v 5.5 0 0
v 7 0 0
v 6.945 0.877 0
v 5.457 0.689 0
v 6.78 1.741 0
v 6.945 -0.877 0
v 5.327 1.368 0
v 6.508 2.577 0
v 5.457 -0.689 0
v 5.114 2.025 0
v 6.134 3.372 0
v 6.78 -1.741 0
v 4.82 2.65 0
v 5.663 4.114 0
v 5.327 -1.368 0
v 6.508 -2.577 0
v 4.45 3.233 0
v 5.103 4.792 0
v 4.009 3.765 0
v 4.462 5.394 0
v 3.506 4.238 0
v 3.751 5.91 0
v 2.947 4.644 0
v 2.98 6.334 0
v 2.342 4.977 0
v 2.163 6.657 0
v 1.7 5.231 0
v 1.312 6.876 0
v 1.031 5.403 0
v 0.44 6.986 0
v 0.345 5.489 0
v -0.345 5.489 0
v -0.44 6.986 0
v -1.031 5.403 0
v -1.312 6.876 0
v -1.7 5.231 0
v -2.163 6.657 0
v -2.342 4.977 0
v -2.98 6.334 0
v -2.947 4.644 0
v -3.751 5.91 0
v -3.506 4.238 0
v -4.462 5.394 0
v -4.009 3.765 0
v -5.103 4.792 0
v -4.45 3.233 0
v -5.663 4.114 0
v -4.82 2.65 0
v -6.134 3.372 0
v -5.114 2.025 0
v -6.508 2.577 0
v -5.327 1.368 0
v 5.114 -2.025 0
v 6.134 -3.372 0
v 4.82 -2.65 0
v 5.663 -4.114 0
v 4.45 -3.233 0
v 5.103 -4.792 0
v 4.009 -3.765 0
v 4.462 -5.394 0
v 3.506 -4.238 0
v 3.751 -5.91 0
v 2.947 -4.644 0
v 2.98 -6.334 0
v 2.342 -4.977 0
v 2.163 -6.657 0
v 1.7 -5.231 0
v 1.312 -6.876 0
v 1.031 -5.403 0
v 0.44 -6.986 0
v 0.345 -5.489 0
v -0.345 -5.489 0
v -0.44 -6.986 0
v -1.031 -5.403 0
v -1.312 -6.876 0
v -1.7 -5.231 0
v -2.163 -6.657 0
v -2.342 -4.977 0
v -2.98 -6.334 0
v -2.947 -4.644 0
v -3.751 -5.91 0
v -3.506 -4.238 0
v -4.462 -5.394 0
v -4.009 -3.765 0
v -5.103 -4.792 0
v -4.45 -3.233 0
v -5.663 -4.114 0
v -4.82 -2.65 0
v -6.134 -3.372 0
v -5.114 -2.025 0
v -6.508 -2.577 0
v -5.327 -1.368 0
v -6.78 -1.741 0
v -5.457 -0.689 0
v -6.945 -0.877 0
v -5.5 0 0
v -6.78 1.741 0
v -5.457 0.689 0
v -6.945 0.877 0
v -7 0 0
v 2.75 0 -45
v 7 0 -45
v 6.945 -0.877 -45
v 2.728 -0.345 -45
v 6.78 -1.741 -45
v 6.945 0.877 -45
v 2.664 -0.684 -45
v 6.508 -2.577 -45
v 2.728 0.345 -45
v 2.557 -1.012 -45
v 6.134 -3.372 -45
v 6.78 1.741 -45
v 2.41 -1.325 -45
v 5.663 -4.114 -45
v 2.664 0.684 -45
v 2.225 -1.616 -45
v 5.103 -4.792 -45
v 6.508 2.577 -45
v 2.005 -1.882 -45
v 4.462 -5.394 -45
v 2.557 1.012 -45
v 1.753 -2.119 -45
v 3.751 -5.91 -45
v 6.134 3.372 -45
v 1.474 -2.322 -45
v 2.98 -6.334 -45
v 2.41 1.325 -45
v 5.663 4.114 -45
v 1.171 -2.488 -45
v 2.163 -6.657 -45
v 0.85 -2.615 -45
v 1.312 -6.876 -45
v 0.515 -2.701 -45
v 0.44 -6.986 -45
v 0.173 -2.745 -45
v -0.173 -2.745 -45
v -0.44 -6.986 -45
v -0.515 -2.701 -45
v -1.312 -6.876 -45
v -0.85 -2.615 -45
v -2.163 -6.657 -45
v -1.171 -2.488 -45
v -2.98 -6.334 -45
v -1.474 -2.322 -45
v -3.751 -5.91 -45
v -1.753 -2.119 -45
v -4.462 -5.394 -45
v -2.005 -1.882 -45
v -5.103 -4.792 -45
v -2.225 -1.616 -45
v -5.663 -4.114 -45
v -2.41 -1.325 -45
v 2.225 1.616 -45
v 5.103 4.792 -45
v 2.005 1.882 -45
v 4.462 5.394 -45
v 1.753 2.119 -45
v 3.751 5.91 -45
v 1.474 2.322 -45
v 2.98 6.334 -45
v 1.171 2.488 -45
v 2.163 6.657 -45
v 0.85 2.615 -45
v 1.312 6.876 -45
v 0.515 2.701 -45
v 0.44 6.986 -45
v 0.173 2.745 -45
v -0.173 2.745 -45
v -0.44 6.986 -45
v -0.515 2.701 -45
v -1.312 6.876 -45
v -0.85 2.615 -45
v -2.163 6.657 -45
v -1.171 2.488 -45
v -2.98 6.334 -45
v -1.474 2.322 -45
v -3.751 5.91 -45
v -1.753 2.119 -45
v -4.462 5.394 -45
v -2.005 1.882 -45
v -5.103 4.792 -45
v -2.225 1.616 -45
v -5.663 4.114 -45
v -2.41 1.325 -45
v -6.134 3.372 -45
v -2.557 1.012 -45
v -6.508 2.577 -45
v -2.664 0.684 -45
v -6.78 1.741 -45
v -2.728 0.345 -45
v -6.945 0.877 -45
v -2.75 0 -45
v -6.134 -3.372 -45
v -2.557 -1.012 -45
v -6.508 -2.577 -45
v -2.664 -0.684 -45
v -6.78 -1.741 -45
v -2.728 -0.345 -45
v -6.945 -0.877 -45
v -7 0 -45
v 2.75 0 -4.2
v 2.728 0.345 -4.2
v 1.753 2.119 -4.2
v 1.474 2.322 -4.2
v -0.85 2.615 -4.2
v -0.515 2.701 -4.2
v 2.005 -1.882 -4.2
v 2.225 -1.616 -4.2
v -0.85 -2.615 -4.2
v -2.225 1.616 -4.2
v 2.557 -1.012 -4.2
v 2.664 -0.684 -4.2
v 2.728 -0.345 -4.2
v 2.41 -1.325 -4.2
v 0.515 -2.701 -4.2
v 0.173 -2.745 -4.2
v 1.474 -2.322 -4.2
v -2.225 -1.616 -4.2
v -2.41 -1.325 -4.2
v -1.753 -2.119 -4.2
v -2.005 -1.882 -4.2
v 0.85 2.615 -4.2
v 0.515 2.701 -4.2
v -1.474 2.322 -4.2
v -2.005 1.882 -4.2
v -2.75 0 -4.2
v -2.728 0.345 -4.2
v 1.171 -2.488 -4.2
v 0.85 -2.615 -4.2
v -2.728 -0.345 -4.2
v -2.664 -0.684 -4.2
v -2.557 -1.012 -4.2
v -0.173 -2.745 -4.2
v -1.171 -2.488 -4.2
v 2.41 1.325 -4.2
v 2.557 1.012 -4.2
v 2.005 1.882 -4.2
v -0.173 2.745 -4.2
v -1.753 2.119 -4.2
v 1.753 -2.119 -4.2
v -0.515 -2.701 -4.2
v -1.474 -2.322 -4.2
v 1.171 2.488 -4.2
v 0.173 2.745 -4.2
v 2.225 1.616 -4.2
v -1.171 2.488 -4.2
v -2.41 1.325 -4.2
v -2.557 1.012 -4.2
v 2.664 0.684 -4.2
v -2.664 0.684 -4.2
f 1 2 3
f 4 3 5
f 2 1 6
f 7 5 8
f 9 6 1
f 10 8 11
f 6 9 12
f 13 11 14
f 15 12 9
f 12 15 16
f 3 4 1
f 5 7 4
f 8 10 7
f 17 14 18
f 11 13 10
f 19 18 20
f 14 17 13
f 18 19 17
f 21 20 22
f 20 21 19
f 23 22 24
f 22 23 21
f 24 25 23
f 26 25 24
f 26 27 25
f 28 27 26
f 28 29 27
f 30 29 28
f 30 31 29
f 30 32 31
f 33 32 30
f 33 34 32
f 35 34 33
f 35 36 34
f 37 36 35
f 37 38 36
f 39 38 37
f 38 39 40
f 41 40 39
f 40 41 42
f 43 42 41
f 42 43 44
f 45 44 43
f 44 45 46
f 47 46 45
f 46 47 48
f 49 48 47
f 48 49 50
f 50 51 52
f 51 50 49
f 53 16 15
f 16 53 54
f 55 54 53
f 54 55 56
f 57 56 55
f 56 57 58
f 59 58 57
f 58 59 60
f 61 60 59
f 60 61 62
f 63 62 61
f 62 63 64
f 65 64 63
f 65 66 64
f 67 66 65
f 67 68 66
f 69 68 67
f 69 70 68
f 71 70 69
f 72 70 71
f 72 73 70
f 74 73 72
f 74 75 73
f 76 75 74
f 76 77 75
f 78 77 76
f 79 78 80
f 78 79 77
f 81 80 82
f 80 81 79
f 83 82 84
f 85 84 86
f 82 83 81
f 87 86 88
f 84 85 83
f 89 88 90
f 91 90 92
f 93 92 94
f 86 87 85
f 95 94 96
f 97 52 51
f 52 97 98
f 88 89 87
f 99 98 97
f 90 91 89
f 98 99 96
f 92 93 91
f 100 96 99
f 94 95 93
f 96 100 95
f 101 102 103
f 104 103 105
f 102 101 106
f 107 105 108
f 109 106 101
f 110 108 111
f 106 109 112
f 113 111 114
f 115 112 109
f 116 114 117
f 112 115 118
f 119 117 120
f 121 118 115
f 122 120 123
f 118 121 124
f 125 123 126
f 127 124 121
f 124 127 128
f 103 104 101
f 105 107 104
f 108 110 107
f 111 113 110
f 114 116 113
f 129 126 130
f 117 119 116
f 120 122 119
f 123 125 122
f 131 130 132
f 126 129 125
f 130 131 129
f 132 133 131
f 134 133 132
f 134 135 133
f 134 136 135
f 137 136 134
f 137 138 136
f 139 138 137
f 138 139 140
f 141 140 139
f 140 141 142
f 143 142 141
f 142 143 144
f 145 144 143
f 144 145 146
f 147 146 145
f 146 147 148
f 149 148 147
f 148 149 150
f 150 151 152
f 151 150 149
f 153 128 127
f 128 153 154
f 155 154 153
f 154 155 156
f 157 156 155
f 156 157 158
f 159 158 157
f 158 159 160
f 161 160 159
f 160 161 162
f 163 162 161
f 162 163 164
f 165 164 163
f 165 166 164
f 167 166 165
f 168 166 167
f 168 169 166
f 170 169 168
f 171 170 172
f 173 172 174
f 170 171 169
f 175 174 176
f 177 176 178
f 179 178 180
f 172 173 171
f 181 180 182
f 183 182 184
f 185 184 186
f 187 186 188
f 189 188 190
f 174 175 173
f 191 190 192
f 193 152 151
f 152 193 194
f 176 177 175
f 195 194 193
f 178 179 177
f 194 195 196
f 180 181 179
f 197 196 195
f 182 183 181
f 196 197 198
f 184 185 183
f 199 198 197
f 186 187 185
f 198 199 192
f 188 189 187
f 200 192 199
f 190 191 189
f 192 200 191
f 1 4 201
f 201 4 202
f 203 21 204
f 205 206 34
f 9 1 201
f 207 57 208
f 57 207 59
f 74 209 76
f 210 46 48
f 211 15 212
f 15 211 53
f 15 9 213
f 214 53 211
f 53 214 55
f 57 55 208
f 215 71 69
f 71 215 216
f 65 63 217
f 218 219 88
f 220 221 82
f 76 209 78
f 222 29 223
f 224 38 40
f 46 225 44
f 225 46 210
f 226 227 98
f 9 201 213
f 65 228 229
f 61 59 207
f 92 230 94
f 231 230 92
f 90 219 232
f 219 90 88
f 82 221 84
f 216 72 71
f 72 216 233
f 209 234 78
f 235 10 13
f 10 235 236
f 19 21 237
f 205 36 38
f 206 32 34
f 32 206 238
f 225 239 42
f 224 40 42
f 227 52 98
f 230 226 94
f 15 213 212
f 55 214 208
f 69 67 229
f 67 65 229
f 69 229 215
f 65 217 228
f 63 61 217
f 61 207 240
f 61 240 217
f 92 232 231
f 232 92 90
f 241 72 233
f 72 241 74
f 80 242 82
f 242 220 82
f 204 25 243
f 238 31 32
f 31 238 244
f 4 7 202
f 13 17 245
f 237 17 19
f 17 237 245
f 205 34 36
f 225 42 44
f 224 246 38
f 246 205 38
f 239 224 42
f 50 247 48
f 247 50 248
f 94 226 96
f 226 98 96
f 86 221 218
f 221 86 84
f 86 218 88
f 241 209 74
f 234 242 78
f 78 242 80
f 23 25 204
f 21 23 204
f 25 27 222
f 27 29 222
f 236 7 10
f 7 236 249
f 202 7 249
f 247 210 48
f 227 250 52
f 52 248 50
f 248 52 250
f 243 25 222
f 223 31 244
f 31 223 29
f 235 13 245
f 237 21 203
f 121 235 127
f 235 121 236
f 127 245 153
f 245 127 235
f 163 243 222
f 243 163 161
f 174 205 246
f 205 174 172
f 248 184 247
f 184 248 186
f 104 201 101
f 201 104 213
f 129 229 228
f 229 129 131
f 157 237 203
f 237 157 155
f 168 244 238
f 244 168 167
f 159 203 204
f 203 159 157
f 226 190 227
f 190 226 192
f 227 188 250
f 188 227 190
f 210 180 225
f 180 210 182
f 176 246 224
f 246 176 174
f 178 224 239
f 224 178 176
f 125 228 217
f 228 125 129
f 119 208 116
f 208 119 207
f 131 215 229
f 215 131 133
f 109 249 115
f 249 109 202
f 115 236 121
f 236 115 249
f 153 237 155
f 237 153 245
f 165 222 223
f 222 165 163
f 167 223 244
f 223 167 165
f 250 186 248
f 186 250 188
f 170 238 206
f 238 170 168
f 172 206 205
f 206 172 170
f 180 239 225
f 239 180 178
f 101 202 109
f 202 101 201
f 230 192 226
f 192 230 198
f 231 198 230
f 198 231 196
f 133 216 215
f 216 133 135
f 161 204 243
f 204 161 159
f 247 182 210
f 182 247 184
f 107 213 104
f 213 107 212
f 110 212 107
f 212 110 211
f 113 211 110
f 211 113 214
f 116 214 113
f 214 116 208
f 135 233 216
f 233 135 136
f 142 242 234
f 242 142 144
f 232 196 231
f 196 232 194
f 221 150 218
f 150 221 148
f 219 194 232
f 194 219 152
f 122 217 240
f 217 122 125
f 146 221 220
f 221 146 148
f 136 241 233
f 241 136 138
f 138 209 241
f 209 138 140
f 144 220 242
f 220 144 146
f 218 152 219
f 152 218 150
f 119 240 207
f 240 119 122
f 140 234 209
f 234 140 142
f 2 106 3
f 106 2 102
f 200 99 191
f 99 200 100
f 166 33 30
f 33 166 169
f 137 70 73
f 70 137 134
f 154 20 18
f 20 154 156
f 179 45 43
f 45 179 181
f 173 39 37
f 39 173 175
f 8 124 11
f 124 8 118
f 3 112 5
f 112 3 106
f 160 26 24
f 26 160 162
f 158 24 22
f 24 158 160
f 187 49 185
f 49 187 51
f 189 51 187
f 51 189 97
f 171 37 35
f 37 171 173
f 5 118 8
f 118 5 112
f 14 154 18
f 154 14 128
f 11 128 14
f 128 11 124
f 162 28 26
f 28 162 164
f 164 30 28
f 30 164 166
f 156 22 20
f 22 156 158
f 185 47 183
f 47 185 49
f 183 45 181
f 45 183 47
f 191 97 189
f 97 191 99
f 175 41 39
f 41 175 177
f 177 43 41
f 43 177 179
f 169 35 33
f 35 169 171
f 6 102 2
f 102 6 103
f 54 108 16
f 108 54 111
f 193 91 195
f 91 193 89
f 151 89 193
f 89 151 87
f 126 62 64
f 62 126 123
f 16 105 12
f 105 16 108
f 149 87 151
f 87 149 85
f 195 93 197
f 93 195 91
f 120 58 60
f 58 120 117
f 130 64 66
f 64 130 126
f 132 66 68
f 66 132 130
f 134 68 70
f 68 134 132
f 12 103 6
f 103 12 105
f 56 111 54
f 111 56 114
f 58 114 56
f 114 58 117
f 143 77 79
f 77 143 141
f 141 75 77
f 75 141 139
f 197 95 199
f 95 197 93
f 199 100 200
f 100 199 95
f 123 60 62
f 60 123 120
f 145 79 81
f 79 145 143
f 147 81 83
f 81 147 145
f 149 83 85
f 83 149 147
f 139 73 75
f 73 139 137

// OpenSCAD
$fn = 50;


difference() {
	union() {
		translate(v = [0, 0, -45.0000000000]) {
			cylinder(h = 45, r = 7.0000000000);
		}
		cylinder(h = 0, r = 13.0000000000);
	}
	union() {
		translate(v = [0, 0, 0]) {
			rotate(a = [0, 0, 0]) {
				difference() {
					union() {
						#translate(v = [0, 0, -45.0000000000]) {
							cylinder(h = 45, r = 2.2500000000);
						}
						#translate(v = [0, 0, -4.2000000000]) {
							cylinder(h = 4.2000000000, r1 = 2.7500000000, r2 = 5.5000000000);
						}
						#translate(v = [0, 0, -45.0000000000]) {
							cylinder(h = 45, r = 2.7500000000);
						}
						#translate(v = [0, 0, -45.0000000000]) {
							cylinder(h = 45, r = 2.2500000000);
						}
					}
					union();
				}
			}
		}
	}
}
